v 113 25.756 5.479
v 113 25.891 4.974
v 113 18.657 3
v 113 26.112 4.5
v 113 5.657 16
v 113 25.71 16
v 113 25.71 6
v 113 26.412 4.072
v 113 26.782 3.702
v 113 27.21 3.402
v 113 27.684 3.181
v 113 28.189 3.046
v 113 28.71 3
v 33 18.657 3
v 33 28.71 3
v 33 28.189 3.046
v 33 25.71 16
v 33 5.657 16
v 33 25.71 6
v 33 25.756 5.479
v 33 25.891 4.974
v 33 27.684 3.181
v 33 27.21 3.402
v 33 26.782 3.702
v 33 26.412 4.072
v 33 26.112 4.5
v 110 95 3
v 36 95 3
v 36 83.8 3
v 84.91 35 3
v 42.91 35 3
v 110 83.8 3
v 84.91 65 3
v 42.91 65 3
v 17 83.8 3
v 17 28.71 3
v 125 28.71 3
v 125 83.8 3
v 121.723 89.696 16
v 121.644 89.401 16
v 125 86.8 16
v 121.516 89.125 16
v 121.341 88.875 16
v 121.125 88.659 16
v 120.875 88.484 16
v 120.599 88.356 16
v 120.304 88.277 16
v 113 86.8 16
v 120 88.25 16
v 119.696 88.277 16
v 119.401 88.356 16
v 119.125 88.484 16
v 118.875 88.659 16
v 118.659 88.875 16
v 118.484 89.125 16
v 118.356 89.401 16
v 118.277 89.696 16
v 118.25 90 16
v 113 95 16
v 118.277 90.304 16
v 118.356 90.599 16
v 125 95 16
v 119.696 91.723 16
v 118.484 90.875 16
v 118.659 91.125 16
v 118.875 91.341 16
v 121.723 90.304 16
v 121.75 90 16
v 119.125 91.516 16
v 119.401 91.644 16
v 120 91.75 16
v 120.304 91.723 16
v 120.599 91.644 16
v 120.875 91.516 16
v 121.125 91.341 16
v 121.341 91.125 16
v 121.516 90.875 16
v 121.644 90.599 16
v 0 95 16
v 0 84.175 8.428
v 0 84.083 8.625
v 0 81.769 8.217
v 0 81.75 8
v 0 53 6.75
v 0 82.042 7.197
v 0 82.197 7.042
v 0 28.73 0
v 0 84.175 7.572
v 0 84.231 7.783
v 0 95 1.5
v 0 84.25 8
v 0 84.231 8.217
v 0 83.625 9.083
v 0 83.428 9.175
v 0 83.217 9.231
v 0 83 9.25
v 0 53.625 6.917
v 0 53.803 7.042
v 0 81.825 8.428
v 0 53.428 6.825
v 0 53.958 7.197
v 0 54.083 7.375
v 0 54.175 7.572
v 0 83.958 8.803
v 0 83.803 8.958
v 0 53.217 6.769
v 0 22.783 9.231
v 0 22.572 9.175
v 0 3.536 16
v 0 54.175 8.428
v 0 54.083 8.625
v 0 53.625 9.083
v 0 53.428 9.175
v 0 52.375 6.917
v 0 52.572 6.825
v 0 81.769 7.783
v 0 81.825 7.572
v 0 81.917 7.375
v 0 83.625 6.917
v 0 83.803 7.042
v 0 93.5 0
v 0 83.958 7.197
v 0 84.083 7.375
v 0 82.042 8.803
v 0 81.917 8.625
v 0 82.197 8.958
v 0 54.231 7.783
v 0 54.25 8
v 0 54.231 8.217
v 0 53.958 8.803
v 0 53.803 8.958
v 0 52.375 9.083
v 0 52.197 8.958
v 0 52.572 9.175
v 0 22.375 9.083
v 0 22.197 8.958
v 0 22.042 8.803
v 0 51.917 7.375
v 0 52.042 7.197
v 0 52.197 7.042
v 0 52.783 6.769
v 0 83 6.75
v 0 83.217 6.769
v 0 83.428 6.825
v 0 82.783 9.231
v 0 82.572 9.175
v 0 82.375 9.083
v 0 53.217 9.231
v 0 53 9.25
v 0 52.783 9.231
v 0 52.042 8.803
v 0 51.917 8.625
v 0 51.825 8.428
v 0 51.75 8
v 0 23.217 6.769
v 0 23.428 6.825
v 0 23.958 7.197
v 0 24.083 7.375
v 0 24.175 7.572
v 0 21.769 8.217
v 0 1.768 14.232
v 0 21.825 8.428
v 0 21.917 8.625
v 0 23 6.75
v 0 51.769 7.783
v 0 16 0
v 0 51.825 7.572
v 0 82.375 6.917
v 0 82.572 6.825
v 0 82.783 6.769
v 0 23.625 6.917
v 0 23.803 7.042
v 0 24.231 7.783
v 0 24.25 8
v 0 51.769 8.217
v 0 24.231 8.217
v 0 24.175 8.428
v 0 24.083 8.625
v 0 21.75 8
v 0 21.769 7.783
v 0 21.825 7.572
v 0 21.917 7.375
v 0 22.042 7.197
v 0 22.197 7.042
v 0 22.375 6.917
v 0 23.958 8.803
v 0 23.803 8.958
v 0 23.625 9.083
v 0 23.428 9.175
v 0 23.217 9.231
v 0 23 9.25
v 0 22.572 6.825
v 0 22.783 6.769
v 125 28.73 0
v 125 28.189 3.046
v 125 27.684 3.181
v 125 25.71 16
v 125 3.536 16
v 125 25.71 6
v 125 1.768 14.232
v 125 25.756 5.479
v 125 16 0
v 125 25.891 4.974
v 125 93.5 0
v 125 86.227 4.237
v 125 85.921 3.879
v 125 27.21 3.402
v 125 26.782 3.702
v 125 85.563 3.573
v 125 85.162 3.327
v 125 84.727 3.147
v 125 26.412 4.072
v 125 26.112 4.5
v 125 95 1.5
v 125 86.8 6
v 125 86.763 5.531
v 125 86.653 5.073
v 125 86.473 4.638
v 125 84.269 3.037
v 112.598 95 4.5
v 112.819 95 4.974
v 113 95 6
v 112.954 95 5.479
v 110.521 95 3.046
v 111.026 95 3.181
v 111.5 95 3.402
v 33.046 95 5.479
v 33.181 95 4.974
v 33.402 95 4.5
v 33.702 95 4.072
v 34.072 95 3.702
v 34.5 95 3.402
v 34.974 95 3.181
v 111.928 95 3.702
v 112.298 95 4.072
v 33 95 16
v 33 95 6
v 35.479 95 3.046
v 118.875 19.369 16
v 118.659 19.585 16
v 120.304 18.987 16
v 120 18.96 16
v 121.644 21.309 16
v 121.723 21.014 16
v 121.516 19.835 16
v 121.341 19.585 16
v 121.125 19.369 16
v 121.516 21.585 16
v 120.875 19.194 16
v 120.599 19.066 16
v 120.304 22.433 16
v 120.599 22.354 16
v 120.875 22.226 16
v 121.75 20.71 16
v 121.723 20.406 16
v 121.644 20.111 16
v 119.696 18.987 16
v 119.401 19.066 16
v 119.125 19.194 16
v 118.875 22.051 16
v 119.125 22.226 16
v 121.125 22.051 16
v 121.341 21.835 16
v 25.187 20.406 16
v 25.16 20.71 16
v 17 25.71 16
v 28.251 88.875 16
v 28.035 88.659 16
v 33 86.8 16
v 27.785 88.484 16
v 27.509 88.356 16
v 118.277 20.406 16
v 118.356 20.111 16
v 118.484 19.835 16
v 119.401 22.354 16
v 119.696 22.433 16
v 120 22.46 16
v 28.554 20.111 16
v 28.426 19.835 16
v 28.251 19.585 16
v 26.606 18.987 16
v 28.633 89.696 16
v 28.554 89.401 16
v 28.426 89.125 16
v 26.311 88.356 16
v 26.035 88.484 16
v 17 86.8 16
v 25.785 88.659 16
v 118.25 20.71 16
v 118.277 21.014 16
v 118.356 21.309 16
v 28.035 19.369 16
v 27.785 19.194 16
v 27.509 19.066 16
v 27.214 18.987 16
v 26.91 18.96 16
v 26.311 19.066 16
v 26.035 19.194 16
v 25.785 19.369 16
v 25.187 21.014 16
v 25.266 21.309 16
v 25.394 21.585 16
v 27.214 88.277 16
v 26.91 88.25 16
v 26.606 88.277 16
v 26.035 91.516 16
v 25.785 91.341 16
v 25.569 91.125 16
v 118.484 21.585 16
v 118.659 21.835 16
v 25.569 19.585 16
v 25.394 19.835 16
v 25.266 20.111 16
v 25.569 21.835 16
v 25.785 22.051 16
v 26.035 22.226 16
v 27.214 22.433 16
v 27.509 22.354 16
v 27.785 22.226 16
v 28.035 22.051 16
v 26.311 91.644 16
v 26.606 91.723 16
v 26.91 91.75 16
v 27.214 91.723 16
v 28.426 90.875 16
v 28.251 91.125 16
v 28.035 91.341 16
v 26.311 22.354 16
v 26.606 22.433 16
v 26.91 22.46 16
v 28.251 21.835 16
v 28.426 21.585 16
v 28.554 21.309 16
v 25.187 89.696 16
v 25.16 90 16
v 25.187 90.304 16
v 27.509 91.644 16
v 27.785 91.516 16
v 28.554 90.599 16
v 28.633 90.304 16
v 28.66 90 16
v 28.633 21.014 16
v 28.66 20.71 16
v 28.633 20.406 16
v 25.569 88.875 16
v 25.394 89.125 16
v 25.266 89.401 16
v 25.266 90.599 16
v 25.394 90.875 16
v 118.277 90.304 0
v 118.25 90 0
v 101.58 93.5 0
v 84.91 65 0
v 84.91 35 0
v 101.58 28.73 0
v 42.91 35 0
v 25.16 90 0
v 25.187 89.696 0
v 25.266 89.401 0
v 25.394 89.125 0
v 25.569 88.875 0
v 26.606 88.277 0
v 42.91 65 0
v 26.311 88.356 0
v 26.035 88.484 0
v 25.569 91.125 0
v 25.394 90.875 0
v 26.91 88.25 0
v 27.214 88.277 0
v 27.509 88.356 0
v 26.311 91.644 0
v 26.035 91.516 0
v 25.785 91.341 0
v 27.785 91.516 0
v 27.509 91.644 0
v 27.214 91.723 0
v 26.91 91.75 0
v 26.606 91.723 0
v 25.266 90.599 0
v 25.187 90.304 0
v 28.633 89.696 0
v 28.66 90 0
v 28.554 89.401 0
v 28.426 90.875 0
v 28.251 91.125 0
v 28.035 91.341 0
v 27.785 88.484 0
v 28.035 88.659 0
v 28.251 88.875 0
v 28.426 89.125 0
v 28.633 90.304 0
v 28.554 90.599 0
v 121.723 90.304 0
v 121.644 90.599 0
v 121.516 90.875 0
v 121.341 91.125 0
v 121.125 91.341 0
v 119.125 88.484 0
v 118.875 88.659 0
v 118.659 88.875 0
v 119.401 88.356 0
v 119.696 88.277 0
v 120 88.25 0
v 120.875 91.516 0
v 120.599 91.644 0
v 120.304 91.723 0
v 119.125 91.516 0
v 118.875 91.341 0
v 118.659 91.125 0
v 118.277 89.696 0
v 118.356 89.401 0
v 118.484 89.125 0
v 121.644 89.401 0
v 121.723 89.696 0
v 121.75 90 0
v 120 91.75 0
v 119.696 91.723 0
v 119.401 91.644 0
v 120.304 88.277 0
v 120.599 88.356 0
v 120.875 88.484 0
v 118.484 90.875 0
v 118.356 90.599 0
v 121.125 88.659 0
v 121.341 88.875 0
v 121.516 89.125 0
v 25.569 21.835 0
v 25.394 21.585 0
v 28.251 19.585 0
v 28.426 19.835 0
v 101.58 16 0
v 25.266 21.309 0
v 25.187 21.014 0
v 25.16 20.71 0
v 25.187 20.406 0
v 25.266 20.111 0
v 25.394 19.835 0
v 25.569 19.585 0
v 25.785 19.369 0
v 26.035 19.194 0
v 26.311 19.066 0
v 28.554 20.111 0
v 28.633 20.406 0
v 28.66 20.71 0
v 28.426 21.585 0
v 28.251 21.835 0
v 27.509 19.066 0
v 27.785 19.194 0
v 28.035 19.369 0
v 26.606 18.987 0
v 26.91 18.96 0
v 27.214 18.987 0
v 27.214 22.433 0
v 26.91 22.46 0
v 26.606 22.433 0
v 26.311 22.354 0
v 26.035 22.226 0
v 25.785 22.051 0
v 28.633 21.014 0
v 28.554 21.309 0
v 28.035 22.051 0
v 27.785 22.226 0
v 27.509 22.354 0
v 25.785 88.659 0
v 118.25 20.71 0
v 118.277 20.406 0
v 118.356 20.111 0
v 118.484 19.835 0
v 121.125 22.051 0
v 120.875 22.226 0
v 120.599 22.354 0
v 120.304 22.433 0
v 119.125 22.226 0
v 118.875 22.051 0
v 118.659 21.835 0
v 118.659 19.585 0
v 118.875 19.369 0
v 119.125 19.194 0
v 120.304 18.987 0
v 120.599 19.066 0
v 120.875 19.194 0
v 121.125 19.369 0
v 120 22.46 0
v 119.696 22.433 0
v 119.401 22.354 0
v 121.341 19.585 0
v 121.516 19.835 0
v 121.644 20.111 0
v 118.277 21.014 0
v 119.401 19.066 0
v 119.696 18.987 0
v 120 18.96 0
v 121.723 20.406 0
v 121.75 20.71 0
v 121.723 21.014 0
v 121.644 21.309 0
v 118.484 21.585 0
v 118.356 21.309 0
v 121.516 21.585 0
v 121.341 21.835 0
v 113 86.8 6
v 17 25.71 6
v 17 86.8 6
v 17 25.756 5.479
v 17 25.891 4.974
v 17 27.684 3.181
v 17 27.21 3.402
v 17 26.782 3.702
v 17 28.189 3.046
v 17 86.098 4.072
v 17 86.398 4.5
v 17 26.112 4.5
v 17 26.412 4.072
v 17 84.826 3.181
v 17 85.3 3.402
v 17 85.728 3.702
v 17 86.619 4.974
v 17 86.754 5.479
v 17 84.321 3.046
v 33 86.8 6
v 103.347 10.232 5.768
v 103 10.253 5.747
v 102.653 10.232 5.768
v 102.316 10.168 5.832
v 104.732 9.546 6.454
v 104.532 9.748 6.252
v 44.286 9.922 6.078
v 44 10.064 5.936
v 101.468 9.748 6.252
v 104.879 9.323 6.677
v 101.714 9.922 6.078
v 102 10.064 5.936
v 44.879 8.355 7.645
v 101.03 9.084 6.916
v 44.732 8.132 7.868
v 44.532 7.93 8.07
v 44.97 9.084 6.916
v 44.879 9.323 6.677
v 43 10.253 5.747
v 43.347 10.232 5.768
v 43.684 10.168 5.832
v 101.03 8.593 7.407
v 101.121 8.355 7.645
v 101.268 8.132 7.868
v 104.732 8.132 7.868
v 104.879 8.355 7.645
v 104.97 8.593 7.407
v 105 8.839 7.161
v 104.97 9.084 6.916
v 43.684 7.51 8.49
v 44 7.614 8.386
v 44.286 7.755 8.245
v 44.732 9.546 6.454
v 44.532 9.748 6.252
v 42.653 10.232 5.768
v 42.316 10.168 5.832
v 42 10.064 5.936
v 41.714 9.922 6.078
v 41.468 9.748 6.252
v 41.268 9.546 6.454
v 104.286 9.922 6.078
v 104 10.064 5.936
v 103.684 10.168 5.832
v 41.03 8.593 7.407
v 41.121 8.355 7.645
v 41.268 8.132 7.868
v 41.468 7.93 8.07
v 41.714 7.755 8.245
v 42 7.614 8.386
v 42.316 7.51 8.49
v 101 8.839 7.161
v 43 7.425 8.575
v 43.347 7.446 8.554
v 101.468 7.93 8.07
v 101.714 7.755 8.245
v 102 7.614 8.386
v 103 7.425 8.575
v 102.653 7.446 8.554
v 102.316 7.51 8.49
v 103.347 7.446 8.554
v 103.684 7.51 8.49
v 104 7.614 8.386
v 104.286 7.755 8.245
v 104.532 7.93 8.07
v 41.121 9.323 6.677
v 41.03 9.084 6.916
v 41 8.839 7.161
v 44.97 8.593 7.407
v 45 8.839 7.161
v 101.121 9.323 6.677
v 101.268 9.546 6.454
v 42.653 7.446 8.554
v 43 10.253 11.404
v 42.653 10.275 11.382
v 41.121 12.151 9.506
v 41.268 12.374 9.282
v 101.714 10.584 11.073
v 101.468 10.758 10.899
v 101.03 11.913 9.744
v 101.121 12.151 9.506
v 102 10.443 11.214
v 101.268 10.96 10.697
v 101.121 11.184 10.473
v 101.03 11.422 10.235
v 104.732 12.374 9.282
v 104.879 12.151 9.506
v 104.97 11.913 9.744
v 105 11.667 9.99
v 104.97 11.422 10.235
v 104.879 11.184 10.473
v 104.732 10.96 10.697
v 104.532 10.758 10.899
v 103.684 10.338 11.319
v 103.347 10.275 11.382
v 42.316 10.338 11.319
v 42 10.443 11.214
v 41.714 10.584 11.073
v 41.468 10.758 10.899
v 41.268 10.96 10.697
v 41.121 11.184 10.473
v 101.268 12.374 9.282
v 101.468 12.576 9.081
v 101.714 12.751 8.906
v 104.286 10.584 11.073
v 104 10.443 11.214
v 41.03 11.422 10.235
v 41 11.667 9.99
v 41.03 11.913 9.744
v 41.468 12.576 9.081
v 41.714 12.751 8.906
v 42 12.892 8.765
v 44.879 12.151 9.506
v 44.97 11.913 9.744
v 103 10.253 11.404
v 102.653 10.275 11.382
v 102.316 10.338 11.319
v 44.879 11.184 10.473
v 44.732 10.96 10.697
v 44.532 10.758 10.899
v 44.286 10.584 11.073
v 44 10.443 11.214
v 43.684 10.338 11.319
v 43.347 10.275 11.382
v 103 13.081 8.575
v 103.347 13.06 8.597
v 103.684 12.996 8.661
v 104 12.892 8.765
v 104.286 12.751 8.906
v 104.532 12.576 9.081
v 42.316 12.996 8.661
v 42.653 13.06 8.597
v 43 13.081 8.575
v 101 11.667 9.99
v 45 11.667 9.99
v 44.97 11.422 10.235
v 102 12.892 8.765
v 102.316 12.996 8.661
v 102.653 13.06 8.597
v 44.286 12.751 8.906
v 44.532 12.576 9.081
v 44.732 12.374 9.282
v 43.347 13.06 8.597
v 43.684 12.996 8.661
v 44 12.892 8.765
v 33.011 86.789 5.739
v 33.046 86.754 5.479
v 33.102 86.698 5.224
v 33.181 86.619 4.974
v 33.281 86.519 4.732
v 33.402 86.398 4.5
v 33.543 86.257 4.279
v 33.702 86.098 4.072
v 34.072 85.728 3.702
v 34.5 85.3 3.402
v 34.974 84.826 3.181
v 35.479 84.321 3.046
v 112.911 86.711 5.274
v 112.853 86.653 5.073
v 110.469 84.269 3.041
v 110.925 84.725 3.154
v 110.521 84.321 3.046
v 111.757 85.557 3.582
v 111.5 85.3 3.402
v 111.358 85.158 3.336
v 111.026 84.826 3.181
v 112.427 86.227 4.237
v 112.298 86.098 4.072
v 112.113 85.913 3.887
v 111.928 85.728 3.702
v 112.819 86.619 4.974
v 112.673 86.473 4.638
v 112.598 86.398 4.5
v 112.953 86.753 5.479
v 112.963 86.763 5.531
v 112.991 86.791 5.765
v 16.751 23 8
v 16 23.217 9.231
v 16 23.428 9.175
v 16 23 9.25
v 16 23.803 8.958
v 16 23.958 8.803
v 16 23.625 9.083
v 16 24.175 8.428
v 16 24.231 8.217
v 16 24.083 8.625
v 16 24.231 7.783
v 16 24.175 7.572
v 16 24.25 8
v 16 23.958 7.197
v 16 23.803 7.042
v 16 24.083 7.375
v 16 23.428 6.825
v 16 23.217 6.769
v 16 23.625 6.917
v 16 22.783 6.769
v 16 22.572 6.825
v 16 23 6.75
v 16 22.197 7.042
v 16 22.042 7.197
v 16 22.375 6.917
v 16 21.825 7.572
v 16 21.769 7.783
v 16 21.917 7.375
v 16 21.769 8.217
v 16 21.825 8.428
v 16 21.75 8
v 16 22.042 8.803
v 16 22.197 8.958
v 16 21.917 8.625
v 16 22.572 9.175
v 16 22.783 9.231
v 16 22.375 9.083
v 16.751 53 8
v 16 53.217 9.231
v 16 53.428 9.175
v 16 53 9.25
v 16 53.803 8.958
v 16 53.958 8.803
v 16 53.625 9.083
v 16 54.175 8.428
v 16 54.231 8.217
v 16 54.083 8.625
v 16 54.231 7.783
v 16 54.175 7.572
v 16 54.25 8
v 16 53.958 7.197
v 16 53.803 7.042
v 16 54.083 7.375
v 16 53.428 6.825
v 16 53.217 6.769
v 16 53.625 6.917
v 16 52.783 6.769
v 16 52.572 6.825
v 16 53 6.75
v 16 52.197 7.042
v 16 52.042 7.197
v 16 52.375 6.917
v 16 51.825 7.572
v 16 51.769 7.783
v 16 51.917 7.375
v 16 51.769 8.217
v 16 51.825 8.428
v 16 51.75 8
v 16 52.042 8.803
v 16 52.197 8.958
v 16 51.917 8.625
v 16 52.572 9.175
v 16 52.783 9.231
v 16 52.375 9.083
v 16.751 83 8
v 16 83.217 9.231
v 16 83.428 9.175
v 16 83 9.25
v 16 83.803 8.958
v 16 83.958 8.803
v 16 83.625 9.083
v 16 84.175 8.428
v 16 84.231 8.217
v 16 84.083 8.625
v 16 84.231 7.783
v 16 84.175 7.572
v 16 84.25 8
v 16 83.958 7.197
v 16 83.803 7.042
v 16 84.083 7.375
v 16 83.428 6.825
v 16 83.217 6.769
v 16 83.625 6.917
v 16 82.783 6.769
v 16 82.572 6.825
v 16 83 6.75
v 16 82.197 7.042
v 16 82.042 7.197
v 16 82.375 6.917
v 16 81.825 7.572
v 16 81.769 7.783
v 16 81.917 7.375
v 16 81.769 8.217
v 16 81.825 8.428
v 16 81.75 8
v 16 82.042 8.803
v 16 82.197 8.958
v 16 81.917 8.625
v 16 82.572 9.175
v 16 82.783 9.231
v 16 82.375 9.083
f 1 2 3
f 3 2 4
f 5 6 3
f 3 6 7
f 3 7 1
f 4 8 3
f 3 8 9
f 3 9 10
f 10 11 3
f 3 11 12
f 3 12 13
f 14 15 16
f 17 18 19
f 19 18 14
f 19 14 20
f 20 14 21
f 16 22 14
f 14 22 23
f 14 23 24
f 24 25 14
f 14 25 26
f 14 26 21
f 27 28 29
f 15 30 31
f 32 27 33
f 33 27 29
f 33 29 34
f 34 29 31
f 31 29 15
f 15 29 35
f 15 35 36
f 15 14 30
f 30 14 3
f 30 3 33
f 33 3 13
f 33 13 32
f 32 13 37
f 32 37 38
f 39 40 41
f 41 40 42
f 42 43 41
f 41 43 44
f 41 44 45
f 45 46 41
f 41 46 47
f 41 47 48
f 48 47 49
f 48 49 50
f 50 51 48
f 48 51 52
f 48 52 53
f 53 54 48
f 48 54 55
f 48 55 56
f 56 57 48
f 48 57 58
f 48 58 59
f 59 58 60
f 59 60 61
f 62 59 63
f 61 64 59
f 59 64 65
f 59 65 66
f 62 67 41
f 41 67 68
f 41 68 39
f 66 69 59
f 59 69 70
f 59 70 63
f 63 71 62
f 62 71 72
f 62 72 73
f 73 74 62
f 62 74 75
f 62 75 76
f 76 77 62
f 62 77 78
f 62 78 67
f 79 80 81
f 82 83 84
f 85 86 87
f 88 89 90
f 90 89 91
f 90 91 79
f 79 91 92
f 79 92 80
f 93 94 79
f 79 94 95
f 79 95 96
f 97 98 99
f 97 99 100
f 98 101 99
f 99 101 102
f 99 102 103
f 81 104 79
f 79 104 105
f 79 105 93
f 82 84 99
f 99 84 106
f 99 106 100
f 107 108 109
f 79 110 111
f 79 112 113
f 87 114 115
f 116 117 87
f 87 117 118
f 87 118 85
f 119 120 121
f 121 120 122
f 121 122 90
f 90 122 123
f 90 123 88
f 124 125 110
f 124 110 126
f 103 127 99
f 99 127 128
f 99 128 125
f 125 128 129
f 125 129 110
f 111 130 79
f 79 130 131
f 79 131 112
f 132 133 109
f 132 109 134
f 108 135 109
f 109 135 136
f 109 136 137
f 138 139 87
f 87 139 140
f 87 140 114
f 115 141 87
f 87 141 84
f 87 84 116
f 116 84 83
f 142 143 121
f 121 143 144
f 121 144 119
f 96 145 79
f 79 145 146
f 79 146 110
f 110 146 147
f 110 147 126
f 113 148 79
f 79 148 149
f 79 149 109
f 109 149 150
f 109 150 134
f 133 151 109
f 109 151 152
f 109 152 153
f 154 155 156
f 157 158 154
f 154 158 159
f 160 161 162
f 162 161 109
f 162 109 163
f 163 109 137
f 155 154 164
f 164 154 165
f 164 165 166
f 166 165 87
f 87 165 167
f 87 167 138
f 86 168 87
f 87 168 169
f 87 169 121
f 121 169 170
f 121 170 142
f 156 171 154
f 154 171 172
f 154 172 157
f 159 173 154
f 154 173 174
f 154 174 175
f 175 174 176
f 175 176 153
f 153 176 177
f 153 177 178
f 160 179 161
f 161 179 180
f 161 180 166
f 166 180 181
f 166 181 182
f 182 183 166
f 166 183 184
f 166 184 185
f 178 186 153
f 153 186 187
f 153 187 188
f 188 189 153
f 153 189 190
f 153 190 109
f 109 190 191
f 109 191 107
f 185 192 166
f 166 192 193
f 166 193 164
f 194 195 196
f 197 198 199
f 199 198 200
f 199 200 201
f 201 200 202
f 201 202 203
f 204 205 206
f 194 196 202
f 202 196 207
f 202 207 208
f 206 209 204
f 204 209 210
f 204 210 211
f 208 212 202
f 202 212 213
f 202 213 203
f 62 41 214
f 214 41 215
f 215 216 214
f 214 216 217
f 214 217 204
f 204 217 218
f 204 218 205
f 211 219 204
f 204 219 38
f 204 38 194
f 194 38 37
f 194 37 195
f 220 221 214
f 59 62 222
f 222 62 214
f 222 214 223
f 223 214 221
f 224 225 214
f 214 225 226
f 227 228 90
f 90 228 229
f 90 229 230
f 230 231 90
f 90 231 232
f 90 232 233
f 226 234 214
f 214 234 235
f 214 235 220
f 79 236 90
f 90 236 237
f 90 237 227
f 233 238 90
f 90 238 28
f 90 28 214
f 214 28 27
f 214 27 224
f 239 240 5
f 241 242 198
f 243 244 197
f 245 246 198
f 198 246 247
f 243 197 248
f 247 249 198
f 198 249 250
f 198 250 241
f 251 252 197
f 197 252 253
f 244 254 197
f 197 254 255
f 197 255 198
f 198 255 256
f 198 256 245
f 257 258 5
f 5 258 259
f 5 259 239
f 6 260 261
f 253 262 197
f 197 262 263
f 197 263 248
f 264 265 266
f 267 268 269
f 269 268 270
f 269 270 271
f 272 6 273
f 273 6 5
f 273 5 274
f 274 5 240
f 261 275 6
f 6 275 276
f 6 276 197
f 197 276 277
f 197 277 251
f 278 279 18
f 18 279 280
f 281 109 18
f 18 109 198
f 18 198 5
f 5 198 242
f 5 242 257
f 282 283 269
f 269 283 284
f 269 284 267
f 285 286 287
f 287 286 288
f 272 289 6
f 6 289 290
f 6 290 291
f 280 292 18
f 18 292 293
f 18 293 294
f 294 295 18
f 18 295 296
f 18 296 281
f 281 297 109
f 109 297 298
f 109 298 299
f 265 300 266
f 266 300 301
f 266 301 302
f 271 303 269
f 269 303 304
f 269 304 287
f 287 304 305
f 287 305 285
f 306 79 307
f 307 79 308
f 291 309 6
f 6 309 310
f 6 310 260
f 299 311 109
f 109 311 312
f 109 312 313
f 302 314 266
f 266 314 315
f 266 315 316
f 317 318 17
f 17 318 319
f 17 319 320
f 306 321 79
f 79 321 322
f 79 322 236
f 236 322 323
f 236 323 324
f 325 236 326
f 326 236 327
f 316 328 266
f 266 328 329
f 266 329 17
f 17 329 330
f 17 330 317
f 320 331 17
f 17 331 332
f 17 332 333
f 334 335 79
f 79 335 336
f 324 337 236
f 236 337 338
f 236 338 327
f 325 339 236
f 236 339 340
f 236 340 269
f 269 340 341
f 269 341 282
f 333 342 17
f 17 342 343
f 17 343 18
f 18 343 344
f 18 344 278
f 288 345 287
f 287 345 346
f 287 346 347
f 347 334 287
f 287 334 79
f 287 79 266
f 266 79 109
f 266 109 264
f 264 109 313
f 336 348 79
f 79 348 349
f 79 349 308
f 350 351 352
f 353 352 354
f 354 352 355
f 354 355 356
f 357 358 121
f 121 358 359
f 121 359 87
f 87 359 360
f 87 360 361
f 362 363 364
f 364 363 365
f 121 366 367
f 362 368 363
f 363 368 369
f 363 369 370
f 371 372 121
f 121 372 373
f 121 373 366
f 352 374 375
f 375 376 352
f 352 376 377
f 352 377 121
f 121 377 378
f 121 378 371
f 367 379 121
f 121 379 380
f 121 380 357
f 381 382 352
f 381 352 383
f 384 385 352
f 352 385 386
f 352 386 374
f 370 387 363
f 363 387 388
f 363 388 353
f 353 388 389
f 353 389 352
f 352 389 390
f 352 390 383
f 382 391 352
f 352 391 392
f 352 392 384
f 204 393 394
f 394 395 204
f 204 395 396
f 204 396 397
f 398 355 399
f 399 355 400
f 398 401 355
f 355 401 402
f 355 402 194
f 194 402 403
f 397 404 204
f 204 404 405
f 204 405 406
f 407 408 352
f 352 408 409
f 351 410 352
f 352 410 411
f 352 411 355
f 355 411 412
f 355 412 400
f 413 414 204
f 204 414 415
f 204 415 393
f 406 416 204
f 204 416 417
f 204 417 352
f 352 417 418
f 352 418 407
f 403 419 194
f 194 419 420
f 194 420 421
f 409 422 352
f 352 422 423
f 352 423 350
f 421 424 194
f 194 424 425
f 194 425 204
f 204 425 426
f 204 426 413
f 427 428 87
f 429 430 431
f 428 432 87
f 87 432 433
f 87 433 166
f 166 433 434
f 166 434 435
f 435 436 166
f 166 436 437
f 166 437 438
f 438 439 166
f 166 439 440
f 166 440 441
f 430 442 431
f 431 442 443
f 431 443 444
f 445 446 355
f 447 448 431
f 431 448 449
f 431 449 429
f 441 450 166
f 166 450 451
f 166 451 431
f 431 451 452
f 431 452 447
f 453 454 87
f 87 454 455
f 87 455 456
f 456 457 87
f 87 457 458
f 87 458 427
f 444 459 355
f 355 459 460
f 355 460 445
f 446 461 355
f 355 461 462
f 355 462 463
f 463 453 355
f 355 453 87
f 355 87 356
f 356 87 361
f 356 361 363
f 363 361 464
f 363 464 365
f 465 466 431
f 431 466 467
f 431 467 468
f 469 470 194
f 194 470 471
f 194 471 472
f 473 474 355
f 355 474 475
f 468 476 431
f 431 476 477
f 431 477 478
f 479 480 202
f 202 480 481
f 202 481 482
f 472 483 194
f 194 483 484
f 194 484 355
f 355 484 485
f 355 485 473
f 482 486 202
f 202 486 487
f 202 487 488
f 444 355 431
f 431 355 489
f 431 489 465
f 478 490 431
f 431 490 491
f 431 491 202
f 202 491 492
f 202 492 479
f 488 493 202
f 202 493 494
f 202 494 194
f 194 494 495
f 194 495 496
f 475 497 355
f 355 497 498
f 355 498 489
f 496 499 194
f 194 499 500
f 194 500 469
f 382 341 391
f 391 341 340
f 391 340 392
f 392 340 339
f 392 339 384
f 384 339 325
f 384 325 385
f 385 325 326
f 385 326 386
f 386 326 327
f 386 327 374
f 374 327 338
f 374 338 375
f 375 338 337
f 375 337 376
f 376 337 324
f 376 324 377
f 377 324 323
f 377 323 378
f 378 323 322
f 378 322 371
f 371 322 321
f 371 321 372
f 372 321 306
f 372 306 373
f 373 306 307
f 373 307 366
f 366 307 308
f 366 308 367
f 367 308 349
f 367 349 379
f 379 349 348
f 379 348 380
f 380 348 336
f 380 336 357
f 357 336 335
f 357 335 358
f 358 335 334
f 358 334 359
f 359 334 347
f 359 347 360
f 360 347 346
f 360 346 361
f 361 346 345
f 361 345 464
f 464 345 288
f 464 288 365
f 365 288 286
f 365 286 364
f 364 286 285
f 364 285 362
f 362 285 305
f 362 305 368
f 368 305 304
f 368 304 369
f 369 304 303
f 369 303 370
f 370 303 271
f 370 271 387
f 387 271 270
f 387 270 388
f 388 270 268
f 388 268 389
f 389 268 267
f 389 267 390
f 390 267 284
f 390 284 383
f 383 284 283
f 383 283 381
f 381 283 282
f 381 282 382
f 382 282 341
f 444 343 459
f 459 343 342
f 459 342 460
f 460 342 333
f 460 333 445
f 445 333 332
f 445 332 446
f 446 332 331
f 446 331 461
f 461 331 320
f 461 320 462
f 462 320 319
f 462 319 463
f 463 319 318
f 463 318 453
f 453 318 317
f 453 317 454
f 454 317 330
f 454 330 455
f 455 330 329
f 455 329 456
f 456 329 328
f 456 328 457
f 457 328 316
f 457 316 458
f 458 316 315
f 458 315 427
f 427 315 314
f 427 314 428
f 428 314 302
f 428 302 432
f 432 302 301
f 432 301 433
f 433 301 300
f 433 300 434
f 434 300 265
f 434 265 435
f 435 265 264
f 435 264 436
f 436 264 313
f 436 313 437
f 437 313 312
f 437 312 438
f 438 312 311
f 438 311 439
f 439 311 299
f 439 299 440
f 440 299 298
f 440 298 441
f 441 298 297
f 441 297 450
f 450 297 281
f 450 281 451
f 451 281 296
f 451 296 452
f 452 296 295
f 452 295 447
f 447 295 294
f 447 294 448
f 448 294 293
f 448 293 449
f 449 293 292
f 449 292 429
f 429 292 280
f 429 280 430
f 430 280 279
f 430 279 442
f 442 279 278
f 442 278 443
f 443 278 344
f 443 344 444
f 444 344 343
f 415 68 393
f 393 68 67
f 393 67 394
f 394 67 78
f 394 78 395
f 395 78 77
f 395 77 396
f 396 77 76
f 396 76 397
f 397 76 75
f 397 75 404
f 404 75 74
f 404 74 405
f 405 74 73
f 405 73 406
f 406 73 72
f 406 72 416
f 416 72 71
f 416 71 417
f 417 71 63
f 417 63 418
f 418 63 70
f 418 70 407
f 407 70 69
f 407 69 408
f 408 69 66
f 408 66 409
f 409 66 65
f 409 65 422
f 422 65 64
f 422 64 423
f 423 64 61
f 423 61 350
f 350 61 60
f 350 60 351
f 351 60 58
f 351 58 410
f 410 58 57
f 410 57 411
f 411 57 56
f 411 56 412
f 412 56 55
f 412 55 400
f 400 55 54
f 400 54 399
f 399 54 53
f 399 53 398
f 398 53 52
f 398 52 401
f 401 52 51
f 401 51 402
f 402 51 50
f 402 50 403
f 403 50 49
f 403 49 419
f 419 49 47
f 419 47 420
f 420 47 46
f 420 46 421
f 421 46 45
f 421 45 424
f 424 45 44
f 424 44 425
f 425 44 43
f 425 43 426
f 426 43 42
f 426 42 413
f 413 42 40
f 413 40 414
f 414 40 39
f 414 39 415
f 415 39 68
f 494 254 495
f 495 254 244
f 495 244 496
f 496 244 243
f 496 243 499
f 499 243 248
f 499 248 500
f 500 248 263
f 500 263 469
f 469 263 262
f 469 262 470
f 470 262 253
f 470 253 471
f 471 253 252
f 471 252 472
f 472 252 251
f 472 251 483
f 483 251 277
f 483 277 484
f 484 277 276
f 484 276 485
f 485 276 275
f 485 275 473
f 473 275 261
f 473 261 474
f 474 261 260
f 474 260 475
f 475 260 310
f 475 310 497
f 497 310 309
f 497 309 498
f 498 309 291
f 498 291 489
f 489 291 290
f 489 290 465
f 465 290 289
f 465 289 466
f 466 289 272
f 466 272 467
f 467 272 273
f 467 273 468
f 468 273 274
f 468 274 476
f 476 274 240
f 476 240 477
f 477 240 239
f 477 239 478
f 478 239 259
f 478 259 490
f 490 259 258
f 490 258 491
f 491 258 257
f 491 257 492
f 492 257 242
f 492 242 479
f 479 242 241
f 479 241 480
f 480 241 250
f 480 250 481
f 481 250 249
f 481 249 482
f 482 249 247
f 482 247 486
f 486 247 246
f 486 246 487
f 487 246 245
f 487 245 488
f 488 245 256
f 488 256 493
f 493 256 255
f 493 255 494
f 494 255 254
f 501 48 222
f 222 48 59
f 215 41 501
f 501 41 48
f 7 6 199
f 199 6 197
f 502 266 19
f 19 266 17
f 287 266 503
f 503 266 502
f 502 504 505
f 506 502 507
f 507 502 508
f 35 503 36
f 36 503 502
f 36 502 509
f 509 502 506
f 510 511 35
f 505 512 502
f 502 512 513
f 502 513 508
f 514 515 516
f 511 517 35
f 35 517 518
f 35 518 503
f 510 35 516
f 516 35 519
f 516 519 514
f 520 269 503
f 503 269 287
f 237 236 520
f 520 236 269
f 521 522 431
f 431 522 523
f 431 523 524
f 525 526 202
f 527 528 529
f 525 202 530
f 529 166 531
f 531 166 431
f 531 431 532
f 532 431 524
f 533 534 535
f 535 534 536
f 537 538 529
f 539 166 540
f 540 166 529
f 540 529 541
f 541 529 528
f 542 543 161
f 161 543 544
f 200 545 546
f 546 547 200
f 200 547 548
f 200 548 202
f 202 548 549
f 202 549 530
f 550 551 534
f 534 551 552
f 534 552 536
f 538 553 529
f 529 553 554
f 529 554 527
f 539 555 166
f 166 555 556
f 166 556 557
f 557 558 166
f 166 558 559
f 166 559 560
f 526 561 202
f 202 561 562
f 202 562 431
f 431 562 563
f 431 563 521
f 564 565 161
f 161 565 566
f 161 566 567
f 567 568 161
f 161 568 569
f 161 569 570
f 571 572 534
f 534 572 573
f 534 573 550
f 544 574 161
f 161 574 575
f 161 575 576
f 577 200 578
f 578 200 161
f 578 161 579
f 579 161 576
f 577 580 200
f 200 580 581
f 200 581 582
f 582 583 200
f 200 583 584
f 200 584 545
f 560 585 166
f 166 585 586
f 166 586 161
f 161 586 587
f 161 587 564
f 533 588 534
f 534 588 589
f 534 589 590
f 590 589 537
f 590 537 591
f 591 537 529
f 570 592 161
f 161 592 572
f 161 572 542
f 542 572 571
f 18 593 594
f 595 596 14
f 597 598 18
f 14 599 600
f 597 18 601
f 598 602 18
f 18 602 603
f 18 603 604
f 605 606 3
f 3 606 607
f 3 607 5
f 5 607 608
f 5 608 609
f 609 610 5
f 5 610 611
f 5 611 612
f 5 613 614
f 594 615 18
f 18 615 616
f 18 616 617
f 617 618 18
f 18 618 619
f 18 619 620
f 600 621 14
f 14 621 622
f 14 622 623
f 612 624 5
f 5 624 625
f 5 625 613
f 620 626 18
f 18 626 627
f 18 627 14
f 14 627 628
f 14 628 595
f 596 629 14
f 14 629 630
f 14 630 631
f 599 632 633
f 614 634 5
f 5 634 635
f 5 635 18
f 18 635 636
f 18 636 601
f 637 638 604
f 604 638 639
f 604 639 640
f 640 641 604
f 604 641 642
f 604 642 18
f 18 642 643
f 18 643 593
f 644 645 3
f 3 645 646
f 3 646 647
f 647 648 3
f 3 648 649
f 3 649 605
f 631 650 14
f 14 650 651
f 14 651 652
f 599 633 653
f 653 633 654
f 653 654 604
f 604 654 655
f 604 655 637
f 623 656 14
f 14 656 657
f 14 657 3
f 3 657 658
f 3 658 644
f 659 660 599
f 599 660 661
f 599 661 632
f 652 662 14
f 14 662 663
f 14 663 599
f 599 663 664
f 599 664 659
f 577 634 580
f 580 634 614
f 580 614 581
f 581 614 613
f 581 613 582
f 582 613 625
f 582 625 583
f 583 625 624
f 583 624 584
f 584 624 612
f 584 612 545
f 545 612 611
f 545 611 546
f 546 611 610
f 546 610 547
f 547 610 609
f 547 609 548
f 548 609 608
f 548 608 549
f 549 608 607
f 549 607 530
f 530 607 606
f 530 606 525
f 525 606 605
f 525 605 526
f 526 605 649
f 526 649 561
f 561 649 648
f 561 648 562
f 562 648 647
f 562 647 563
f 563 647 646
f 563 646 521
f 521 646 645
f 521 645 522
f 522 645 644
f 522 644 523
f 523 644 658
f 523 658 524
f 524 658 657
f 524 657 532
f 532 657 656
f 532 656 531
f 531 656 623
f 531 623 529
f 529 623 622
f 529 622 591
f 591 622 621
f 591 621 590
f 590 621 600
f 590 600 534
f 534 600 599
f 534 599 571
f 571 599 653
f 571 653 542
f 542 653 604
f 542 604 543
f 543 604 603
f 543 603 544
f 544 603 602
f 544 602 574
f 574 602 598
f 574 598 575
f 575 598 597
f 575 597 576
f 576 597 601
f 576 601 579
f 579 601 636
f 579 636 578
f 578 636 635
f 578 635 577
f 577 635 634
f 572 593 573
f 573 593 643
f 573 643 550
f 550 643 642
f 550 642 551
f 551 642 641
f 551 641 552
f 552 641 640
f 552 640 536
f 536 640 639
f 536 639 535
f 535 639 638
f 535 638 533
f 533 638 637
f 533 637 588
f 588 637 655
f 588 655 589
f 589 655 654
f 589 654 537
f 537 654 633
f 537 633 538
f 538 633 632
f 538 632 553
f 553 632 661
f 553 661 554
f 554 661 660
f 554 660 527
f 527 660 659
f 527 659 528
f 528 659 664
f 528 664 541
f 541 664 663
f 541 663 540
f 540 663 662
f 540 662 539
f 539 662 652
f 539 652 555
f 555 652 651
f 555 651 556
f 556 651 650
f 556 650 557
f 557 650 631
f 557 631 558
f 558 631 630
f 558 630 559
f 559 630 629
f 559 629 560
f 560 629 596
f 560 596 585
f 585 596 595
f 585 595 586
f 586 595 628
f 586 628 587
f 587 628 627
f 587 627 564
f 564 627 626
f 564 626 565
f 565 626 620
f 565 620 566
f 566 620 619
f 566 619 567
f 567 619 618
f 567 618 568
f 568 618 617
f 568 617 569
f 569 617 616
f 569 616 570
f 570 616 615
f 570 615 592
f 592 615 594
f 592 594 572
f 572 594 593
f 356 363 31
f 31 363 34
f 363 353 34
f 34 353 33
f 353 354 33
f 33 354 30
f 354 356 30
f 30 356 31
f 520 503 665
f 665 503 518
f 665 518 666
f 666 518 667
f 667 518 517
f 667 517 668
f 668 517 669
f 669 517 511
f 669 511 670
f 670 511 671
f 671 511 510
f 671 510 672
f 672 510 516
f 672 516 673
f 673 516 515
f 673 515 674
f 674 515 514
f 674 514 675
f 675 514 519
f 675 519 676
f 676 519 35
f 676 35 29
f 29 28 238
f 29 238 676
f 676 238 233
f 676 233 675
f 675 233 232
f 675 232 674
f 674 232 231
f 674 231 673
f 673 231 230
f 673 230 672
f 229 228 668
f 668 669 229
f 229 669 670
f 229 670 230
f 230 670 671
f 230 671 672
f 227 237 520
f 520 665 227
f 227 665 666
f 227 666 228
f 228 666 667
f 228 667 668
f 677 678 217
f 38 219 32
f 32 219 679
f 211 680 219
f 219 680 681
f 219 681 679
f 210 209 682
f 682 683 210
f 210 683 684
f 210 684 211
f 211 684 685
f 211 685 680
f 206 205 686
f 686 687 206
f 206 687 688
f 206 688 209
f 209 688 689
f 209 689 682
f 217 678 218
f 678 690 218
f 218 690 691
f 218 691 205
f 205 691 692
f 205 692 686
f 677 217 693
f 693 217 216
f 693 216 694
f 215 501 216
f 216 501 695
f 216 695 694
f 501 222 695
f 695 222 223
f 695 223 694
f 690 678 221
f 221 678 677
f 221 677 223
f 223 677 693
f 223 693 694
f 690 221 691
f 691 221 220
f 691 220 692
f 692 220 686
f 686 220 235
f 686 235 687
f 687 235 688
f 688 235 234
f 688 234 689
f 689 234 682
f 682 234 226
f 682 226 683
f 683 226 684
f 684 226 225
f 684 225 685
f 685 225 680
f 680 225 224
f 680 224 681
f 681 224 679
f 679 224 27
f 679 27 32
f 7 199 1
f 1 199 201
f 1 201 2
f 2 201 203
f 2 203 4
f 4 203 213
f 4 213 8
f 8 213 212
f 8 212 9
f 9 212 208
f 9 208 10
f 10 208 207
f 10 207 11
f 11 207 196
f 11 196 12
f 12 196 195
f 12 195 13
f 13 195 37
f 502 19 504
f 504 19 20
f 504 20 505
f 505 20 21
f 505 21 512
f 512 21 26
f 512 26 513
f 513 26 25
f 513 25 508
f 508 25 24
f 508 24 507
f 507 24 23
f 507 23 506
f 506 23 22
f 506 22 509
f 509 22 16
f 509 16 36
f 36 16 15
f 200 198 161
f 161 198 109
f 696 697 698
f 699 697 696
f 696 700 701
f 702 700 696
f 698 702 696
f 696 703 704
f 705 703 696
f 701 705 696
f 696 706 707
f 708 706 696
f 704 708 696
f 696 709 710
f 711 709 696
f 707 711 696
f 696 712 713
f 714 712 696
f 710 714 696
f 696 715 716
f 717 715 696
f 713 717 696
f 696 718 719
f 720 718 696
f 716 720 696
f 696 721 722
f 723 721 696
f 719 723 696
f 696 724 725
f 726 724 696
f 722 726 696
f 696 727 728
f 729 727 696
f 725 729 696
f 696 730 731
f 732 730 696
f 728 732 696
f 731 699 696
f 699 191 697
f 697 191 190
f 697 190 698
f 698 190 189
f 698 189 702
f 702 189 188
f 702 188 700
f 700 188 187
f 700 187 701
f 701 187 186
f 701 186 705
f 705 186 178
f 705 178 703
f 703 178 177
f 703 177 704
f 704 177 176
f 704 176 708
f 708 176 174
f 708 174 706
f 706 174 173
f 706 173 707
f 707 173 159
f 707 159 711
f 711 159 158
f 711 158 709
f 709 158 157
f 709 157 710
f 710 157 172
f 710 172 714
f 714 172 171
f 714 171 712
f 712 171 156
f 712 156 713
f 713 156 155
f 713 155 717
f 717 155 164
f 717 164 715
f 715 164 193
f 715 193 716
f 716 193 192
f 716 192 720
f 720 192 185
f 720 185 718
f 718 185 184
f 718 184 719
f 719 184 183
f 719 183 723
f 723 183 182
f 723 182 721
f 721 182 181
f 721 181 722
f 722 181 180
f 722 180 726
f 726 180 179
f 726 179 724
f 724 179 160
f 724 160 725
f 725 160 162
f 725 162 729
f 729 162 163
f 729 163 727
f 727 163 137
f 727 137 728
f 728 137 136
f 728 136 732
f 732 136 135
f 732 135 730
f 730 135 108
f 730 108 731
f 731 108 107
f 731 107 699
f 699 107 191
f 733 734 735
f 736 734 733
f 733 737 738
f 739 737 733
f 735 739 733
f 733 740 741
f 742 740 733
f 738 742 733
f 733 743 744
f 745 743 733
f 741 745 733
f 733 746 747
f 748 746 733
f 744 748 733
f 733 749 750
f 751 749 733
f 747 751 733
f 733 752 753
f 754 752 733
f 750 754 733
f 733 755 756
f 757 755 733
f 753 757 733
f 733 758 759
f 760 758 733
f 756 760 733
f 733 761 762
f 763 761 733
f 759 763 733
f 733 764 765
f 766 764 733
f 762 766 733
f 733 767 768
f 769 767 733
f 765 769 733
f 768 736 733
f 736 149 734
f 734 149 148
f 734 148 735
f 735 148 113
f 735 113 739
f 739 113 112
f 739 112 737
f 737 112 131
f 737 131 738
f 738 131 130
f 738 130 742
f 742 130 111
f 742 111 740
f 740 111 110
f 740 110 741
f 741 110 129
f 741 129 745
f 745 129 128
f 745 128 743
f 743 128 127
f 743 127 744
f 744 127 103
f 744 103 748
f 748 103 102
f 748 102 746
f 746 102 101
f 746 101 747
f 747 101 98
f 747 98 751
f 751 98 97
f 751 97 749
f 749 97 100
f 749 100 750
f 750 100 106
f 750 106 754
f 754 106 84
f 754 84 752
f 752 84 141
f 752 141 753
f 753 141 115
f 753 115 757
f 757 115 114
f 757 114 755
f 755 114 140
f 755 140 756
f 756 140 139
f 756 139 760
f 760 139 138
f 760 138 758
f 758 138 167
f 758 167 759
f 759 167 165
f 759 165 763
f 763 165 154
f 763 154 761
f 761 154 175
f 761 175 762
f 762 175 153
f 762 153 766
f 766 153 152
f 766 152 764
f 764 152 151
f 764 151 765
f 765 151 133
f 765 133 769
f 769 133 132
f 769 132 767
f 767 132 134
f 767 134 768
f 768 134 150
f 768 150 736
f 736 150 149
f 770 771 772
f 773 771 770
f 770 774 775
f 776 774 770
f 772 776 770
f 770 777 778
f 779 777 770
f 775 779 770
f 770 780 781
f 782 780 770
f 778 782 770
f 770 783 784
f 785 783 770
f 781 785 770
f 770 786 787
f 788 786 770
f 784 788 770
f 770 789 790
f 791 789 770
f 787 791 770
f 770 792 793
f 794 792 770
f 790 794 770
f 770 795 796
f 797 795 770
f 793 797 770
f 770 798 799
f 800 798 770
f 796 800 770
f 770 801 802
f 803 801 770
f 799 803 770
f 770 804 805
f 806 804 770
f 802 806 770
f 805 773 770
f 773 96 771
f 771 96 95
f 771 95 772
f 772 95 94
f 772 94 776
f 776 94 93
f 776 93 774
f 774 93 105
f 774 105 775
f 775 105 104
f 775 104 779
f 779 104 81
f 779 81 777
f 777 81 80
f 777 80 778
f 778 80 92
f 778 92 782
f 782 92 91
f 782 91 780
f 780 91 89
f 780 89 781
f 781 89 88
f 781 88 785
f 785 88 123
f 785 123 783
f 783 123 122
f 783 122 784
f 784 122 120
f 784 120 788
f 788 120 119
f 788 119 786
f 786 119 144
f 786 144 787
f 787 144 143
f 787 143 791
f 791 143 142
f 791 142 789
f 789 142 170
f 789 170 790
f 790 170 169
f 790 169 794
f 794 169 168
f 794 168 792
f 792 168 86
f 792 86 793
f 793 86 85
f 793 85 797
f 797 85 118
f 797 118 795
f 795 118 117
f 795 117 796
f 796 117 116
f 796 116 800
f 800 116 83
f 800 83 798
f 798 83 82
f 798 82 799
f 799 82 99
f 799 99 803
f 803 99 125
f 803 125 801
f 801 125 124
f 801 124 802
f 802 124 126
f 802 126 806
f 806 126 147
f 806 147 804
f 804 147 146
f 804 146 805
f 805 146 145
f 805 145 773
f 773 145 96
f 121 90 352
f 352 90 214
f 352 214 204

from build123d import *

# Parameters (mm, degrees)
SKETCH_1_W                  = 125
SKETCH_1_H                  = 95
EXTRUDE_1_DEPTH             = 16
SKETCH_3_R                  = 1.75
CUT_EXTRUDE_1_DEPTH         = 158.816348963
CUT_EXTRUDE_2_DEPTH         = 13
CUT_EXTRUDE_3_DEPTH         = 158.816348963
EXTRUDE_4_DEPTH             = 80
HOLE_WIZARD_4_0_4_1_D       = 4
SKETCH_11_W                 = 42
SKETCH_11_H                 = 30
CUT_EXTRUDE_4_DEPTH         = 158.540470991
FILLET_4_R                  = 3
CHAMFER_1_SIZE              = 2.5
CHAMFER_1_SIZE2             = 3.535533906
HOLE_WIZARD_2_5_2_5_1_D     = 2.5
HOLE_WIZARD_2_5_2_5_1_DEPTH = 16
HOLE_WIZARD_2_5_2_5_1_TIP   = 0.751075774
CHAMFER_2_SIZE              = 1.5


with BuildPart() as part:
    # 草图1 → 凸台-拉伸1 (new body)
    with BuildSketch(Plane.XY):
        with Locations((62.5, 47.5)):
            Rectangle(SKETCH_1_W, SKETCH_1_H)
    extrude(amount=EXTRUDE_1_DEPTH)

    # 草图3 → 切除-拉伸1 (cut, through all)
    with BuildSketch(Plane.XY.offset(16)):
        with Locations((26.91, 90)):
            Circle(SKETCH_3_R)
        with Locations((26.91, 20.71)):
            Circle(SKETCH_3_R)
        with Locations((120, 90)):
            Circle(SKETCH_3_R)
        with Locations((120, 20.71)):
            Circle(SKETCH_3_R)
    extrude(amount=-CUT_EXTRUDE_1_DEPTH, mode=Mode.SUBTRACT)

    # 草图4 → 切除-拉伸2 (cut)
    with BuildSketch(Plane.XY.offset(16)):
        Polygon((33, 95), (33, 86.8), (17, 86.8), (17, 25.71), (33, 25.71), (33, 0), (113, 0), (113, 25.71), (125, 25.71), (125, 86.8), (113, 86.8), (113, 95), align=None)
    extrude(amount=-CUT_EXTRUDE_2_DEPTH, mode=Mode.SUBTRACT)

    # 草图5 → 切除-拉伸3 (cut, through all)
    with BuildSketch(Plane(origin=(125, 0, 0), x_dir=(0, 0, -1), z_dir=(1, 0, 0))):
        Polygon((-16, 0), (0, 16), (0, 0), align=None)
    extrude(amount=-CUT_EXTRUDE_3_DEPTH, mode=Mode.SUBTRACT)

    # 草图8 → 凸台-拉伸4 (add)
    with BuildSketch(Plane(origin=(33, 0, 0), x_dir=(0, 0, -1), z_dir=(1, 0, 0))):
        Polygon((-16, 0), (-3, 13), (-3, 18.656854249), (-16, 5.656854249), align=None)
    extrude(amount=EXTRUDE_4_DEPTH)

    # Ø4.0 (4) 直径孔1 (through all)
    with Locations(Plane(origin=(0, 10.828427125, 10.828427125), x_dir=(1, 0, 0), z_dir=(0, 0.7071067811865476, 0.7071067811865476))):
        with Locations((43, 1.186291501), (103, 1.186291501)):
            Hole(HOLE_WIZARD_4_0_4_1_D / 2)

    # 草图11 → 切除-拉伸4 (cut, through all)
    with BuildSketch(Plane.XY.offset(3)):
        with Locations((63.91, 50)):
            Rectangle(SKETCH_11_W, SKETCH_11_H)
    extrude(amount=-CUT_EXTRUDE_4_DEPTH, mode=Mode.SUBTRACT)

    # 圆角4
    fillet_4_edges = [part.edges().sort_by_distance(p)[0] for p in [
        (25, 86.8, 3),
        (113, 90.9, 3),
        (119, 86.8, 3),
        (119, 25.71, 3),
        (25, 25.71, 3),
        (33, 90.9, 3),
    ]]
    fillet(fillet_4_edges, radius=FILLET_4_R)

    # 倒角1
    chamfer_1_edges = [part.edges().sort_by_distance(p)[0] for p in [
        (62.5, 0, 16),
    ]]
    chamfer_1_side = [part.faces().sort_by_distance(p)[0] for p in [
        (62.405862979, 7.992479485, 8.007520515),
    ]]
    chamfer(chamfer_1_edges, length=CHAMFER_1_SIZE, length2=CHAMFER_1_SIZE2, reference=chamfer_1_side[0])

    # Ø2.5 (2.5) 直径孔1
    with Locations(Plane.ZY):
        with Locations((8, 83), (8, 53), (8, 23)):
            Hole(HOLE_WIZARD_2_5_2_5_1_D / 2, depth=HOLE_WIZARD_2_5_2_5_1_DEPTH)
            with Locations((0, 0, -(HOLE_WIZARD_2_5_2_5_1_DEPTH + HOLE_WIZARD_2_5_2_5_1_TIP / 2))):  # 118° drill point
                Cone(0, HOLE_WIZARD_2_5_2_5_1_D / 2, HOLE_WIZARD_2_5_2_5_1_TIP, mode=Mode.SUBTRACT)

    # 倒角2
    chamfer_2_edges = [part.edges().sort_by_distance(p)[0] for p in [
        (62.5, 95, 0),
    ]]
    chamfer(chamfer_2_edges, length=CHAMFER_2_SIZE)


solid = part.part
